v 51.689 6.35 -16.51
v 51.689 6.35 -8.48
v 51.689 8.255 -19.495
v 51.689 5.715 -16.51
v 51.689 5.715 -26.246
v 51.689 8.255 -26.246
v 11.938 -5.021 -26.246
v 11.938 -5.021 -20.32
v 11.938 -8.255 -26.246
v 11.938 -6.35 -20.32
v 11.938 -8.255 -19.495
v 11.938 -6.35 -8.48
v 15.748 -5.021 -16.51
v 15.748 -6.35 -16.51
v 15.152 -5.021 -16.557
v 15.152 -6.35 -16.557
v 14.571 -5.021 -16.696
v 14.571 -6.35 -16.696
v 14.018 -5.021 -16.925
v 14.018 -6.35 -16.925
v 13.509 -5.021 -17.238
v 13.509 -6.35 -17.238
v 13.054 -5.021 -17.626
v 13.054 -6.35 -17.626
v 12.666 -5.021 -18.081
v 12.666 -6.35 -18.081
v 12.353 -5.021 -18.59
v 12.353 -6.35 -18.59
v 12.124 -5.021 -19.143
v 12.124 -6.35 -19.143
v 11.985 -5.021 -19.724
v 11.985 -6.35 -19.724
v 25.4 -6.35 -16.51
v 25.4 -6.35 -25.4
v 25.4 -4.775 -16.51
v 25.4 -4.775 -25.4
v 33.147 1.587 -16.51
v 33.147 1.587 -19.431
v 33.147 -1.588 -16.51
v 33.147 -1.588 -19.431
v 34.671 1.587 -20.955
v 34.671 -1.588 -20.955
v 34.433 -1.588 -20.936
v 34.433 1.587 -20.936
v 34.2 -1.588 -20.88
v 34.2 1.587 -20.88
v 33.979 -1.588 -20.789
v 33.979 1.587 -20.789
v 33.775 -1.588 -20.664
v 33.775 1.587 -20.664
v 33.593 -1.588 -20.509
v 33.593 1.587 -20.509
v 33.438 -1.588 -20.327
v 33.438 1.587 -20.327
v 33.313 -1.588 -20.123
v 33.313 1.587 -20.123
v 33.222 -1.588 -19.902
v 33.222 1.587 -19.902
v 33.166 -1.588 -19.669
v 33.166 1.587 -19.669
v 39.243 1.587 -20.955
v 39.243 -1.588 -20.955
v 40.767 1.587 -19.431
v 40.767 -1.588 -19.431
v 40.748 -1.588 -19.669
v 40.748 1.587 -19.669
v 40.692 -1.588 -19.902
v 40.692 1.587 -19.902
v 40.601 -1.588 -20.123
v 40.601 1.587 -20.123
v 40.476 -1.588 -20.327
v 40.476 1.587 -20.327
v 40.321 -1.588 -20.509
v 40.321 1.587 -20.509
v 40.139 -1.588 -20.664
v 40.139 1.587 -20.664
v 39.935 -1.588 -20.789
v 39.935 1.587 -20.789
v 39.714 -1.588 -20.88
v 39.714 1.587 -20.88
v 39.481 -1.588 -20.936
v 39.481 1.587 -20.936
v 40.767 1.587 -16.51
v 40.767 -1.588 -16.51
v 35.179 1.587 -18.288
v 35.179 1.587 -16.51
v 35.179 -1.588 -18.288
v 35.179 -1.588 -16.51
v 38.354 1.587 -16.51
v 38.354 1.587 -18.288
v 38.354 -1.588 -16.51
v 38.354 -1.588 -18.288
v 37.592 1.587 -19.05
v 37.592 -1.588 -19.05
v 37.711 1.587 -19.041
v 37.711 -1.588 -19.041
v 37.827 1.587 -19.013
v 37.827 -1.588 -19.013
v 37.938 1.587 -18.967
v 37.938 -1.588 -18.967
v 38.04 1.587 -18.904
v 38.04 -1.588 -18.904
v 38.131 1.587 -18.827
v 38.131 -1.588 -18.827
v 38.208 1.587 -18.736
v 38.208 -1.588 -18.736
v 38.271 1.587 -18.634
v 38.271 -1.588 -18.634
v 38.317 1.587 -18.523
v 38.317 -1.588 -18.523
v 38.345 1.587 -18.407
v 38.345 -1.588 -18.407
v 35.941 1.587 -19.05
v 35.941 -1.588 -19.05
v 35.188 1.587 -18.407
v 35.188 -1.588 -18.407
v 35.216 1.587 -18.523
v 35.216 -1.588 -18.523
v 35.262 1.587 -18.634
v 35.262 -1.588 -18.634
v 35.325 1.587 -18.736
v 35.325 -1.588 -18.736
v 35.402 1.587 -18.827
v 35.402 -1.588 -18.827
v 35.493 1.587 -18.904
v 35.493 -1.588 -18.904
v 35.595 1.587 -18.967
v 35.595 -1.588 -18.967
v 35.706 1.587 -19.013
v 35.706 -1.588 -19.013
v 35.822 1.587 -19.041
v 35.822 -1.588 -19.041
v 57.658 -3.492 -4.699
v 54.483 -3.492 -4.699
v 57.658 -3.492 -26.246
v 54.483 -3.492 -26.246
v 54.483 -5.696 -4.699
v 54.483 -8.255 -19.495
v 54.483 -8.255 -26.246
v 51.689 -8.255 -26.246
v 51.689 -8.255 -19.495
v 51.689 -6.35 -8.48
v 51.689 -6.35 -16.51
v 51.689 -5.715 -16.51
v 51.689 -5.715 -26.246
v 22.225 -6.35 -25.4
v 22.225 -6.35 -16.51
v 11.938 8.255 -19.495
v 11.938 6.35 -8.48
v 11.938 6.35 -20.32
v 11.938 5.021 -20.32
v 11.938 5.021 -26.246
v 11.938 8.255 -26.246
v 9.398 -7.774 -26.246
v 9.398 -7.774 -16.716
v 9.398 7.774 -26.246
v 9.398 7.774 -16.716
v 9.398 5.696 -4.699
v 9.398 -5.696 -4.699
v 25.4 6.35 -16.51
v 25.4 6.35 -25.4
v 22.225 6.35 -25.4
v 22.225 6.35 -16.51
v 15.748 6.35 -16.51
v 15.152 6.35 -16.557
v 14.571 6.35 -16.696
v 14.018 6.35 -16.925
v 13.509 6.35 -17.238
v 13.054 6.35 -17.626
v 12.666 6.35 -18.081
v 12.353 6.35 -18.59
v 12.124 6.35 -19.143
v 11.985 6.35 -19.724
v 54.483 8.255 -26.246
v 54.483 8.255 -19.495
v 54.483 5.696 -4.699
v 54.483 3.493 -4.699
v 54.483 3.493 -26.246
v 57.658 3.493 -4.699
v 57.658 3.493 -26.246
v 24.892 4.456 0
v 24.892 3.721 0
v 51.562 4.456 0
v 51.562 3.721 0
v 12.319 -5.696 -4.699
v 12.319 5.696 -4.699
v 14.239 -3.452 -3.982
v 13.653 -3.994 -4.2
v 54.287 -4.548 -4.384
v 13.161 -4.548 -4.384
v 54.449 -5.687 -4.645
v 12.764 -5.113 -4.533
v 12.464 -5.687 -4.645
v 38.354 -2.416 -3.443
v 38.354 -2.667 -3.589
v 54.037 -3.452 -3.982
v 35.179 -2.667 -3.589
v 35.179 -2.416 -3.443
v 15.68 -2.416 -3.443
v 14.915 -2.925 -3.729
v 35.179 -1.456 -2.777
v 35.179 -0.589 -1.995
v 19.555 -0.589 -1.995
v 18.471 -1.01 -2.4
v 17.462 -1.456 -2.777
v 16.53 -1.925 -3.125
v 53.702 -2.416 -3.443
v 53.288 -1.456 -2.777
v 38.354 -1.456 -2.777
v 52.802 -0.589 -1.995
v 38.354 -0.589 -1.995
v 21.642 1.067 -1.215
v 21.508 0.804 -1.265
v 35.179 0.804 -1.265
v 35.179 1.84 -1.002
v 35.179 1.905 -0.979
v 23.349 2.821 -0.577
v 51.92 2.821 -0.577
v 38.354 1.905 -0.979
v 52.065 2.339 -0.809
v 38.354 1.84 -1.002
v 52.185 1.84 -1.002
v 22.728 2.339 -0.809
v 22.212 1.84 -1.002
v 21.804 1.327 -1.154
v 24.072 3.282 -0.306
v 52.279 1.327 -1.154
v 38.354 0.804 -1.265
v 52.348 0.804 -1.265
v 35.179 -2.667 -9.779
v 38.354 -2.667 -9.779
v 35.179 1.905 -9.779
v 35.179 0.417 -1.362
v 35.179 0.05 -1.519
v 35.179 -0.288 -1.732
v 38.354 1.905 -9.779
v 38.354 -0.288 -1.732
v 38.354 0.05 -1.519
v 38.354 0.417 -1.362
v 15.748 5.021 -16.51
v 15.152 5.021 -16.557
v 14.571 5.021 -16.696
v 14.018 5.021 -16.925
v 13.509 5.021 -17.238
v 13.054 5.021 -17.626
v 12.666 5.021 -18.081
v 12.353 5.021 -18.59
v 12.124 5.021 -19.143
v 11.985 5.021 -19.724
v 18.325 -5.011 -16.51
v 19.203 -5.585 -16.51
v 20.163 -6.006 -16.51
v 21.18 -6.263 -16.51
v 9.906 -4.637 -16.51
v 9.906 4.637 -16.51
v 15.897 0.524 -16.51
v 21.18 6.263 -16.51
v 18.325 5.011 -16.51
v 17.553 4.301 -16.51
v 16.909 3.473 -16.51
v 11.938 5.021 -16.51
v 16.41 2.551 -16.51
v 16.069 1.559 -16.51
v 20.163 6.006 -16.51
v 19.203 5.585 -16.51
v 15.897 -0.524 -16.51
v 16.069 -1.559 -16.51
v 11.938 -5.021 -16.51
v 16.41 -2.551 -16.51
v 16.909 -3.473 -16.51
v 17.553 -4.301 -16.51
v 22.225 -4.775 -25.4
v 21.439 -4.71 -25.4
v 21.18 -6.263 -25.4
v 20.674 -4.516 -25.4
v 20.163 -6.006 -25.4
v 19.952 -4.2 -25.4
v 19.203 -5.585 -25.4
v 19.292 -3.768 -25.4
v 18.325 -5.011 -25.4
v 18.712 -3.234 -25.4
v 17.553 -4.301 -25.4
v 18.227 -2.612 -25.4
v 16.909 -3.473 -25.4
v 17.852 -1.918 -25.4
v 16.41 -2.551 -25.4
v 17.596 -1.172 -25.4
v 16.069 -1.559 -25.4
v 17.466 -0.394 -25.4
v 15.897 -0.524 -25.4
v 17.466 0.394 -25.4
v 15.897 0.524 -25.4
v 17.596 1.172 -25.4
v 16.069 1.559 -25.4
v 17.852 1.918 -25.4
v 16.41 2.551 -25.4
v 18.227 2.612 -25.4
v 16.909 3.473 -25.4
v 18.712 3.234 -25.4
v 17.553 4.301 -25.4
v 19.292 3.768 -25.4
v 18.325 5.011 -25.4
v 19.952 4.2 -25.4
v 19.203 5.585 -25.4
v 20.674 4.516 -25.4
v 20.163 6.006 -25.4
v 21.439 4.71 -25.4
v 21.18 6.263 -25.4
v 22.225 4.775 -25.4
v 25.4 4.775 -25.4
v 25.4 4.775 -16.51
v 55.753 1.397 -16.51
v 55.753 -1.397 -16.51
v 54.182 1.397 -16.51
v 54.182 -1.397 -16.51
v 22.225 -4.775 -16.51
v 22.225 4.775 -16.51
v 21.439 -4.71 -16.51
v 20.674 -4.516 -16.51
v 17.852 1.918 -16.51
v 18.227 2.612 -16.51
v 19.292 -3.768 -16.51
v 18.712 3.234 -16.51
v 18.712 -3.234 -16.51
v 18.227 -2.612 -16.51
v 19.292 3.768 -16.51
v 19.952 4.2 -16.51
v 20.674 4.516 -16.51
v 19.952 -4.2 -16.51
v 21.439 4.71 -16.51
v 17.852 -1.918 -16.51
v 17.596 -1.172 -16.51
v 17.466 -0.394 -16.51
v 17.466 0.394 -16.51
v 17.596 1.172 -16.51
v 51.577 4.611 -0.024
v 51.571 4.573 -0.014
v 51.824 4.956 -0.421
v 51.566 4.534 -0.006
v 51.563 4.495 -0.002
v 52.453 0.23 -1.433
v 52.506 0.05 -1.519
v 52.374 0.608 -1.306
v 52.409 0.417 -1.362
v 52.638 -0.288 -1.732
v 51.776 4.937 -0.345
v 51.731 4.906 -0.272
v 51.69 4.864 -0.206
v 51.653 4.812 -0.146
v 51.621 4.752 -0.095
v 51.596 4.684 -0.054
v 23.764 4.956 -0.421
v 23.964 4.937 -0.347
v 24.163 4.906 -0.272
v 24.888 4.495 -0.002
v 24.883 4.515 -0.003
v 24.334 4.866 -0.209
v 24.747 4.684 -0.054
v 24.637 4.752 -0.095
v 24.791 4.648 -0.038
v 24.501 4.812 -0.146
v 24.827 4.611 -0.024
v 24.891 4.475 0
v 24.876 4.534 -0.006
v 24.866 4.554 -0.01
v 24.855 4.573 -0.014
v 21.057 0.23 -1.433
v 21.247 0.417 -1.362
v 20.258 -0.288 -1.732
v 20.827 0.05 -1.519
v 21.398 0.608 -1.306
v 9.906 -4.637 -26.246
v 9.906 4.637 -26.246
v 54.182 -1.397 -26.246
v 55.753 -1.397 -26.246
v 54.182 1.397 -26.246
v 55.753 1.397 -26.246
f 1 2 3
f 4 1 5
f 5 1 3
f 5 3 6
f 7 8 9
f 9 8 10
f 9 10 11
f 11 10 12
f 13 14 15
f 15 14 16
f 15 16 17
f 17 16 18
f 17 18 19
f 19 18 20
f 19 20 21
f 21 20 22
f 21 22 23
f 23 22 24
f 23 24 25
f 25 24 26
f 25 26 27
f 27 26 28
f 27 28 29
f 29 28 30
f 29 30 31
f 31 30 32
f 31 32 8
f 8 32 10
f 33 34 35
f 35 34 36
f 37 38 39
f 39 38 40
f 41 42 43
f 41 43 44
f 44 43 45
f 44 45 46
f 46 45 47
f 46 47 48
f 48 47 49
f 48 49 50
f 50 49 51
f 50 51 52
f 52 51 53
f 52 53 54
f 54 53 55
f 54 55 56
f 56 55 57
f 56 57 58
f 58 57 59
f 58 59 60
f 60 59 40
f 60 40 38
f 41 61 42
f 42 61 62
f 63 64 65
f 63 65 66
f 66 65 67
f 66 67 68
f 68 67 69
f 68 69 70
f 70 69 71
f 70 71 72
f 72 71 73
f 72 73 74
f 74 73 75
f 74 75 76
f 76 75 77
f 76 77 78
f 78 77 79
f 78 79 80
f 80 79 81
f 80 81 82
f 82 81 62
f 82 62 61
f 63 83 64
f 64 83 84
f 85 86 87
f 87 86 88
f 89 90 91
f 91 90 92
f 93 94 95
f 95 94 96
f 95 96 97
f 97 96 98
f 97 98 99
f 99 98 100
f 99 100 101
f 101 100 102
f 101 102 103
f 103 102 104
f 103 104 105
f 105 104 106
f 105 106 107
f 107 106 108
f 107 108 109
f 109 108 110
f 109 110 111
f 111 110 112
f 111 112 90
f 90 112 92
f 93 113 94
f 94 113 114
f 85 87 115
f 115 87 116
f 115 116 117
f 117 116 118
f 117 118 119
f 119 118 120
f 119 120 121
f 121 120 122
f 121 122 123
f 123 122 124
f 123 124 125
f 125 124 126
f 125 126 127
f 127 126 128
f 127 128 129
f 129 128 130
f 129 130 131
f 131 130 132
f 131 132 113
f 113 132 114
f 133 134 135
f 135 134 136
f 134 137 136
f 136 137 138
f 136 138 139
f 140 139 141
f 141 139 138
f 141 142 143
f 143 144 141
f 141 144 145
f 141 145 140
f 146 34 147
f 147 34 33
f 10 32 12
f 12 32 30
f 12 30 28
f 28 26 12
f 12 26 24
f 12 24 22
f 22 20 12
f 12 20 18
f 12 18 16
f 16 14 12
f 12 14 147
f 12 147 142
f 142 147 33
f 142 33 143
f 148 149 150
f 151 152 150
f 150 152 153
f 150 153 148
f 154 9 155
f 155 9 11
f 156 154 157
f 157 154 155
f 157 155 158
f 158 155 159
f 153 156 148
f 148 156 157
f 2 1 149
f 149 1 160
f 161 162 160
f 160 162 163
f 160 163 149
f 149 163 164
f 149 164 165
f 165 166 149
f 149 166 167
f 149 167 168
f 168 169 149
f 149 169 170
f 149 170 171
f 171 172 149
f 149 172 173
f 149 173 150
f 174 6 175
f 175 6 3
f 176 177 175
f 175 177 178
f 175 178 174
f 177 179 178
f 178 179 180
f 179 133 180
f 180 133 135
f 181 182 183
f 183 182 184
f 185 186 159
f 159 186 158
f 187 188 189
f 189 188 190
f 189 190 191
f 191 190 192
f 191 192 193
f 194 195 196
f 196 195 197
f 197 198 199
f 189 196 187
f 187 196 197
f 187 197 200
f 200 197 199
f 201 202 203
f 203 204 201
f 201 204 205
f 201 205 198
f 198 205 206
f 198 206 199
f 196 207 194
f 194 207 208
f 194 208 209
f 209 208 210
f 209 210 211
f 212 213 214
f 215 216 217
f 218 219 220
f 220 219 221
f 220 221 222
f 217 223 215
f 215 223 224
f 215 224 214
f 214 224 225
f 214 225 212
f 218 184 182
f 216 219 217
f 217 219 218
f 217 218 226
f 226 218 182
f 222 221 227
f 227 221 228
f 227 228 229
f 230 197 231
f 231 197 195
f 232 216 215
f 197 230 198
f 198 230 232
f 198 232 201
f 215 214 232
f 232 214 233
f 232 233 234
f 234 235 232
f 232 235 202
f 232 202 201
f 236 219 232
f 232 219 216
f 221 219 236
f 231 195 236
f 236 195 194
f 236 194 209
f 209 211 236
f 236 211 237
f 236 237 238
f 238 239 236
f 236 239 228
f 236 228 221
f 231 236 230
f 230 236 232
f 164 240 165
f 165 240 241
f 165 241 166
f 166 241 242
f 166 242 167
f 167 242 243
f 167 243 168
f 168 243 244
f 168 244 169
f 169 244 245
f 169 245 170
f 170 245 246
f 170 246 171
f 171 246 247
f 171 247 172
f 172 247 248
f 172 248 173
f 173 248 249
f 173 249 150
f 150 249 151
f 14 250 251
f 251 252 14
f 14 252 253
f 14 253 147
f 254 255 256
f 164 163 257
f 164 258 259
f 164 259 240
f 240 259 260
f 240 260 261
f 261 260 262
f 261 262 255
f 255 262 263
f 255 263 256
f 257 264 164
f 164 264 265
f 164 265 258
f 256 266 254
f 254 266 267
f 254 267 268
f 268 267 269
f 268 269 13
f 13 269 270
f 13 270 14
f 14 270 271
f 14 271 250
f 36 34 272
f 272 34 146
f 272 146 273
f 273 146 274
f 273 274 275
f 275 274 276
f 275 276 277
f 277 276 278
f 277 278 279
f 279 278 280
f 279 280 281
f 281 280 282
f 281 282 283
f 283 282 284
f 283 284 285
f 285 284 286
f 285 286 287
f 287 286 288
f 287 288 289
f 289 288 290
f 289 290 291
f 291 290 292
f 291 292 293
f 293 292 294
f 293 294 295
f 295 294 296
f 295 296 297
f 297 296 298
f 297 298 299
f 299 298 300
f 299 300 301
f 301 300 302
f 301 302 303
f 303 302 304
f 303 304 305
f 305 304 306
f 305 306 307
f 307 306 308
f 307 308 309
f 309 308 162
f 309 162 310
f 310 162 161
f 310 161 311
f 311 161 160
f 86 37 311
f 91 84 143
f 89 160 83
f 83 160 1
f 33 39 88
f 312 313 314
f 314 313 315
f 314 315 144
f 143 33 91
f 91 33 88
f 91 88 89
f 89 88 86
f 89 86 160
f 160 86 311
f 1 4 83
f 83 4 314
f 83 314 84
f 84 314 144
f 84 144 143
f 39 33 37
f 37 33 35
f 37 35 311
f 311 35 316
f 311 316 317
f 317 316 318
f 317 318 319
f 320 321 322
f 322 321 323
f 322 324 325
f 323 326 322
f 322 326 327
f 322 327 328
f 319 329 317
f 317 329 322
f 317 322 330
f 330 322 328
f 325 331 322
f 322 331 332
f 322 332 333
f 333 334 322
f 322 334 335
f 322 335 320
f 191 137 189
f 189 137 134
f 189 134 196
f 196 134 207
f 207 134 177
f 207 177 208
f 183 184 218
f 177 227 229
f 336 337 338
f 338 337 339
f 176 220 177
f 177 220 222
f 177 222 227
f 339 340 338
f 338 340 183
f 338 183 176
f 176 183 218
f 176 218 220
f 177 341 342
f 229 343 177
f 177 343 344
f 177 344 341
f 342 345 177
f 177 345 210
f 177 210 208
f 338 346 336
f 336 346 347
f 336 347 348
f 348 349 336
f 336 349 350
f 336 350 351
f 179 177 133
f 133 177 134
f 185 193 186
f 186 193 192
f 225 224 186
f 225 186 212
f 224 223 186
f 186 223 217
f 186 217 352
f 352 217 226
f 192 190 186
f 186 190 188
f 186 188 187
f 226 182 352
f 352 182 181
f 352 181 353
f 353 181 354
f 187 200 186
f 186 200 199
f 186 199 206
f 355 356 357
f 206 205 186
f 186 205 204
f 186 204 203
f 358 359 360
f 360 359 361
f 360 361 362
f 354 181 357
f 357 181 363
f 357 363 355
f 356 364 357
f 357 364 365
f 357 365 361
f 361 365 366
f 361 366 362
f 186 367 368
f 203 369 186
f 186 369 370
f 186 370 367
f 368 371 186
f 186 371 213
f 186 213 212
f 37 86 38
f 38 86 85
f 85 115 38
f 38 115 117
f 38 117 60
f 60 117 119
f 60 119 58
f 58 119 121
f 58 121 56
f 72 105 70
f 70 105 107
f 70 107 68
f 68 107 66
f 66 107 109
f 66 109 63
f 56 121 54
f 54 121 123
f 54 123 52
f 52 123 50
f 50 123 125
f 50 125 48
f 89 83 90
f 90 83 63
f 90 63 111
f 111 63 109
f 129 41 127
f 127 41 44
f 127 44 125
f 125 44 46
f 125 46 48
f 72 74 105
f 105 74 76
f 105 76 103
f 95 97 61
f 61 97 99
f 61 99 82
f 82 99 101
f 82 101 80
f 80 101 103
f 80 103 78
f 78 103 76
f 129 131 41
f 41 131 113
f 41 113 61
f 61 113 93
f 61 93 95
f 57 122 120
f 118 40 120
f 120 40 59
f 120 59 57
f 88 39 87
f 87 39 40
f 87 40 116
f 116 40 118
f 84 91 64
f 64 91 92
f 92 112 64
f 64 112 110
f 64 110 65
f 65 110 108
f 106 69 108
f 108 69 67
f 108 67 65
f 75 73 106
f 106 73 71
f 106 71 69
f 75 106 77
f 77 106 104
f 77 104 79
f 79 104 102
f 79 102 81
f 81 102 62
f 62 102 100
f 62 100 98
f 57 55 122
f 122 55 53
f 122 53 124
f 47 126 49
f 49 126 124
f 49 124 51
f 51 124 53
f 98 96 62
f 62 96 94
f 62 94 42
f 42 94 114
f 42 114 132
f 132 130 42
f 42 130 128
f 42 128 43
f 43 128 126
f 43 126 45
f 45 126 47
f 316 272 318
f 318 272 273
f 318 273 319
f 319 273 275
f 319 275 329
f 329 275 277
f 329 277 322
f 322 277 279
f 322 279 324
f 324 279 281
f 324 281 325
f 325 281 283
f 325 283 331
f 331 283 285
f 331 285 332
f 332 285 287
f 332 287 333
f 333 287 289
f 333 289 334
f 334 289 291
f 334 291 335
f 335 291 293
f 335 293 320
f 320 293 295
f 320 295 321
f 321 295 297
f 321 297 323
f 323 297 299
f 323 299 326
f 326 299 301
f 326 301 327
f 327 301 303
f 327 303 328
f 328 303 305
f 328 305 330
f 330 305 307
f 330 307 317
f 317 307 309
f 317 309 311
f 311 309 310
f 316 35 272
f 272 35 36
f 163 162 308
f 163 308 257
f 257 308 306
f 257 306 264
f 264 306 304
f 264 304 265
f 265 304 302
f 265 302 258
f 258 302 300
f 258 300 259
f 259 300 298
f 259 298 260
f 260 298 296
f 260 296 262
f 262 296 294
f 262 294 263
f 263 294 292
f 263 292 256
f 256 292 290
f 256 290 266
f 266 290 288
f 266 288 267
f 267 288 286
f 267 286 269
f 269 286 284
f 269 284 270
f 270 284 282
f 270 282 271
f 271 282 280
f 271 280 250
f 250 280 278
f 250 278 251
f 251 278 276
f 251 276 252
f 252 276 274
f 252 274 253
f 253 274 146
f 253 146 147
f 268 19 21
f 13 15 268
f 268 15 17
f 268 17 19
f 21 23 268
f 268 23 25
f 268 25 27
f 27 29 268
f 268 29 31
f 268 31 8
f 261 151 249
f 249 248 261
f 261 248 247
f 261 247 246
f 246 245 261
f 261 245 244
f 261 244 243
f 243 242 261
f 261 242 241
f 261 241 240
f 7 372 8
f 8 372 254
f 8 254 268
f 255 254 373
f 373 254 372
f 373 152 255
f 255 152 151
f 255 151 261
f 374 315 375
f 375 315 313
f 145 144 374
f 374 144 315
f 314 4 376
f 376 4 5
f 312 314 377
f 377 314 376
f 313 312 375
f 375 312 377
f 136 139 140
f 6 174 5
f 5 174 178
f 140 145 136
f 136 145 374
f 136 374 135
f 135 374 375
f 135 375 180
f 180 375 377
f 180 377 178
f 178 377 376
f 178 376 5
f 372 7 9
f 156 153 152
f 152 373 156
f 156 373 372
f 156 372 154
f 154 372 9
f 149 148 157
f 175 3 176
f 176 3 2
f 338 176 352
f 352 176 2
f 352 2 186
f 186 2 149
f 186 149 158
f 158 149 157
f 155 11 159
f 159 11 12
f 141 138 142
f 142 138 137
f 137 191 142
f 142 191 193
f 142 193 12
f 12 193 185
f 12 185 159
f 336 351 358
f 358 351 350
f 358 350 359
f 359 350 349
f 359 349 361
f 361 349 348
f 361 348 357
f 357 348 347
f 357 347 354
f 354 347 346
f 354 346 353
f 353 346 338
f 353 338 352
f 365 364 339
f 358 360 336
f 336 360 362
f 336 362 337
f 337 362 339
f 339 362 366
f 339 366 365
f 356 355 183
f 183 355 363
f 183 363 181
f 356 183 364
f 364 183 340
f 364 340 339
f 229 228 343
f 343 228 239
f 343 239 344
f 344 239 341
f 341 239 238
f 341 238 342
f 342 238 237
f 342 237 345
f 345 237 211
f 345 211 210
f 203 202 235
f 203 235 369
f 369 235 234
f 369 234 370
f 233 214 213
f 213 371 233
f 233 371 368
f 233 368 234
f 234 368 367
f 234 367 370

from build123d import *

# Parameters (mm, degrees)
BOSS_EXTRUDE1_DEPTH    = 34.29
SKETCH2_W              = 4.699
SKETCH2_H              = 1.424459459
SKETCH2_H_2            = 0.480540541
CUT_EXTRUDE1_DEPTH     = 60.774381845
SKETCH3_W              = 3.175
SKETCH3_H              = 4.572
CUT_EXTRUDE2_DEPTH     = 9.779
CUT_EXTRUDE3_DEPTH     = 70.085665402
CUT_EXTRUDE4_START     = -17.78
CUT_EXTRUDE4_OUTLINE_W = 7.62
CUT_EXTRUDE4_OUTLINE_H = 4.7625
CUT_EXTRUDE4_DEPTH     = 17.78
SKETCH6_W              = 10.915170011
SKETCH6_H              = 18.687954265
CUT_EXTRUDE5_DEPTH     = 74.422
CUT_EXTRUDE6_DEPTH     = 74.422
FILLET2_R              = 0.508
FILLET3_R              = 2.54


# Read off the part's stored shape, not the designer's step: Cut-Extrude4
with BuildPart() as part:
    # Sketch1 → Boss-Extrude1 (new body)
    with BuildSketch(Plane.XY):
        Polygon((9.398, 6.35), (9.398, -6.35), (9.398, -7.774459459), (11.938, -8.255), (11.938, -6.35), (51.689, -6.35), (51.689, -8.255), (54.483, -8.255), (54.483, -3.4925), (57.658, -3.4925), (57.658, 3.4925), (54.483, 3.4925), (54.483, 8.255), (51.689, 8.255), (51.689, 6.35), (11.938, 6.35), (11.938, 8.255), (9.398, 7.774459459), align=None)
    extrude(amount=-BOSS_EXTRUDE1_DEPTH)

    # Sketch2 → Cut-Extrude1 (cut, through all)
    with BuildSketch(Plane.ZY.offset(-9.398)):
        with BuildLine():
            ThreePointArc((11.962240433, -0.310327796), (7.428822396, 6.001266395), (0, 3.720762472))
            Line((0, 3.720762472), (0, 0.889))
            ThreePointArc((0, 0.889), (6.395096144, 1.80805092), (11.813233179, -1.711281452))
            ThreePointArc((11.813233179, -1.711281452), (11.924883856, -1.014755633), (11.962240433, -0.310327796))
        make_face()
        with BuildLine():
            Line((0, 0.889), (0, 3.720762472))
            ThreePointArc((0, 3.720762472), (-0.961463724, 1.954640839), (-1.351994264, -0.017942243))
            ThreePointArc((-1.351994264, -0.017942243), (-0.696131125, 0.465542965), (0, 0.889))
        make_face()
        with BuildLine():
            ThreePointArc((0, 0.889), (-0.696131125, 0.465542965), (-1.351994264, -0.017942243))
            ThreePointArc((-1.351994264, -0.017942243), (-1.054856668, -2.298153331), (0, -4.341418064))
            Line((0, -4.341418064), (0, 0.889))
        make_face()
        with BuildLine():
            ThreePointArc((11.813233179, -1.711281452), (6.395096144, 1.80805092), (0, 0.889))
            Line((0, 0.889), (0, -4.341418064))
            ThreePointArc((0, -4.341418064), (6.749348825, -6.811473452), (11.813233179, -1.711281452))
        make_face()
        with BuildLine():
            ThreePointArc((0, -4.341418064), (-1.054856668, -2.298153331), (-1.351994264, -0.017942243))
            ThreePointArc((-1.351994264, -0.017942243), (-3.994827922, -3.482124307), (-4.743817945, -7.774459459))
            Line((-4.743817945, -7.774459459), (0, -7.774459459))
            Line((0, -7.774459459), (0, -4.341418064))
        make_face()
        with Locations((-2.3495, 7.06222973)):
            Rectangle(SKETCH2_W, SKETCH2_H)
        with Locations((-2.3495, 8.01472973)):
            Rectangle(SKETCH2_W, SKETCH2_H_2)
        with BuildLine():
            Line((0, -7.774459459), (-4.743817945, -7.774459459))
            ThreePointArc((-4.743817945, -7.774459459), (-4.72456581, -8.015024154), (-4.699, -8.255))
            Line((-4.699, -8.255), (0, -8.255))
            Line((0, -8.255), (0, -7.774459459))
        make_face()
    extrude(amount=-CUT_EXTRUDE1_DEPTH, mode=Mode.SUBTRACT)

    # Sketch3 → Cut-Extrude2 (cut)
    with BuildSketch(Plane.XY):
        with Locations((36.7665, -0.381)):
            Rectangle(SKETCH3_W, SKETCH3_H)
    extrude(amount=-CUT_EXTRUDE2_DEPTH, mode=Mode.SUBTRACT)

    # Sketch4 → Cut-Extrude3 (cut, through all)
    with BuildSketch(Plane.XZ.offset(8.255)):
        with BuildLine():
            Line((51.689, -34.29), (51.689, -16.51))
            Line((51.689, -16.51), (40.767, -16.51))
            Line((40.767, -16.51), (40.767, -19.431))
            ThreePointArc((40.767, -19.431), (40.320630735, -20.508630735), (39.243, -20.955))
            Line((39.243, -20.955), (34.671, -20.955))
            ThreePointArc((34.671, -20.955), (33.593369265, -20.508630735), (33.147, -19.431))
            Line((33.147, -19.431), (33.147, -16.51))
            Line((33.147, -16.51), (25.4, -16.51))
            Line((25.4, -16.51), (25.4, -25.4))
            Line((25.4, -25.4), (15.875, -25.4))
            Line((15.875, -25.4), (15.875, -16.51))
            Line((15.875, -16.51), (15.748, -16.51))
            ThreePointArc((15.748, -16.51), (13.053923164, -17.625923164), (11.938, -20.32))
            Line((11.938, -20.32), (11.938, -34.29))
            Line((11.938, -34.29), (51.689, -34.29))
        make_face()
        with BuildLine():
            Line((35.179, -16.51), (38.354, -16.51))
            Line((38.354, -16.51), (38.354, -18.288))
            ThreePointArc((38.354, -18.288), (38.130815367, -18.826815367), (37.592, -19.05))
            Line((37.592, -19.05), (35.941, -19.05))
            ThreePointArc((35.941, -19.05), (35.402184633, -18.826815367), (35.179, -18.288))
            Line((35.179, -18.288), (35.179, -16.51))
        make_face()
        Polygon((57.658, -4.699), (54.483, -4.699), (51.562, 0), (57.658, 0), align=None)
        Polygon((6.604, -4.699), (12.319, -4.699), (24.892, 0), (6.604, 0), align=None)
    extrude(amount=-CUT_EXTRUDE3_DEPTH, mode=Mode.SUBTRACT)

    # Cut-Extrude4 outline → Cut-Extrude4 (cut)
    with BuildSketch(Plane(origin=(0, 0, -34.29), x_dir=(-1, 0, 0), z_dir=(0, 0, -1)).offset(CUT_EXTRUDE4_START)):
        with BuildLine():
            Line((-22.225, -6.35), (-15.875, -6.35))
            Line((-15.875, -6.35), (-15.875, -5.021000706))
            Line((-15.875, -5.021000706), (-11.938, -5.021000706))
            Line((-11.938, -5.021000706), (-9.906, -4.636568273))
            Line((-9.906, -4.636568273), (-9.906, 4.636568273))
            Line((-9.906, 4.636568273), (-11.938, 5.021000706))
            Line((-11.938, 5.021000706), (-15.875, 5.021000706))
            Line((-15.875, 5.021000706), (-15.875, 6.35))
            Line((-15.875, 6.35), (-22.225, 6.35))
            ThreePointArc((-22.225, 6.35), (-15.875, 0), (-22.225, -6.35))
        make_face()
        with Locations((-36.957, -3.96875)):
            Rectangle(CUT_EXTRUDE4_OUTLINE_W, CUT_EXTRUDE4_OUTLINE_H)
        with BuildLine():
            Line((-25.4, 4.7752), (-25.4, -4.7752))
            Line((-25.4, -4.7752), (-22.225, -4.7752))
            ThreePointArc((-22.225, -4.7752), (-17.4498, 0), (-22.225, 4.7752))
            Line((-22.225, 4.7752), (-25.4, 4.7752))
        make_face()
        with Locations((-36.957, 3.96875)):
            Rectangle(CUT_EXTRUDE4_OUTLINE_W, CUT_EXTRUDE4_OUTLINE_H)
        Polygon((-54.181998462, -1.397), (-51.689, -5.715), (-51.689, 5.715), (-54.181998462, 1.397), (-55.753, 1.397), (-55.753, -1.397), align=None)
    extrude(amount=CUT_EXTRUDE4_DEPTH, mode=Mode.SUBTRACT)

    # Sketch6 → Cut-Extrude5 (cut)
    with BuildSketch(Plane.ZY.offset(-9.398)):
        with Locations((-31.703953975, 0.006721575)):
            Rectangle(SKETCH6_W, SKETCH6_H)
    extrude(amount=-CUT_EXTRUDE5_DEPTH, mode=Mode.SUBTRACT)

    # Sketch7 → Cut-Extrude6 (cut)
    with BuildSketch(Plane.ZY.offset(-9.398)):
        Polygon((-19.4945, 8.255), (-19.4945, 8.707804747), (-4.699, 8.83298433), (3.124174595, 8.83298433), (3.124174595, 5.342724301), (3.124174595, 4.343051296), align=None)
        Polygon((3.124174595, -4.343051296), (3.124174595, -5.342724301), (3.124174595, -8.83298433), (-4.699, -8.83298433), (-19.4945, -8.707804747), (-19.4945, -8.255), align=None)
    extrude(amount=-CUT_EXTRUDE6_DEPTH, mode=Mode.SUBTRACT)

    # Fillet2
    fillet2_edges = [part.edges().sort_by_distance(p)[0] for p in [
        (38.227, 4.883384051, 0),
    ]]
    fillet(fillet2_edges, radius=FILLET2_R)

    # Fillet3
    fillet3_edges = [part.edges().sort_by_distance(p)[0] for p in [
        (45.378214433, -0.017942243, -1.351994264),
        (28.226750917, -0.017942243, -1.351994264),
    ]]
    fillet(fillet3_edges, radius=FILLET3_R)


solid = part.part
